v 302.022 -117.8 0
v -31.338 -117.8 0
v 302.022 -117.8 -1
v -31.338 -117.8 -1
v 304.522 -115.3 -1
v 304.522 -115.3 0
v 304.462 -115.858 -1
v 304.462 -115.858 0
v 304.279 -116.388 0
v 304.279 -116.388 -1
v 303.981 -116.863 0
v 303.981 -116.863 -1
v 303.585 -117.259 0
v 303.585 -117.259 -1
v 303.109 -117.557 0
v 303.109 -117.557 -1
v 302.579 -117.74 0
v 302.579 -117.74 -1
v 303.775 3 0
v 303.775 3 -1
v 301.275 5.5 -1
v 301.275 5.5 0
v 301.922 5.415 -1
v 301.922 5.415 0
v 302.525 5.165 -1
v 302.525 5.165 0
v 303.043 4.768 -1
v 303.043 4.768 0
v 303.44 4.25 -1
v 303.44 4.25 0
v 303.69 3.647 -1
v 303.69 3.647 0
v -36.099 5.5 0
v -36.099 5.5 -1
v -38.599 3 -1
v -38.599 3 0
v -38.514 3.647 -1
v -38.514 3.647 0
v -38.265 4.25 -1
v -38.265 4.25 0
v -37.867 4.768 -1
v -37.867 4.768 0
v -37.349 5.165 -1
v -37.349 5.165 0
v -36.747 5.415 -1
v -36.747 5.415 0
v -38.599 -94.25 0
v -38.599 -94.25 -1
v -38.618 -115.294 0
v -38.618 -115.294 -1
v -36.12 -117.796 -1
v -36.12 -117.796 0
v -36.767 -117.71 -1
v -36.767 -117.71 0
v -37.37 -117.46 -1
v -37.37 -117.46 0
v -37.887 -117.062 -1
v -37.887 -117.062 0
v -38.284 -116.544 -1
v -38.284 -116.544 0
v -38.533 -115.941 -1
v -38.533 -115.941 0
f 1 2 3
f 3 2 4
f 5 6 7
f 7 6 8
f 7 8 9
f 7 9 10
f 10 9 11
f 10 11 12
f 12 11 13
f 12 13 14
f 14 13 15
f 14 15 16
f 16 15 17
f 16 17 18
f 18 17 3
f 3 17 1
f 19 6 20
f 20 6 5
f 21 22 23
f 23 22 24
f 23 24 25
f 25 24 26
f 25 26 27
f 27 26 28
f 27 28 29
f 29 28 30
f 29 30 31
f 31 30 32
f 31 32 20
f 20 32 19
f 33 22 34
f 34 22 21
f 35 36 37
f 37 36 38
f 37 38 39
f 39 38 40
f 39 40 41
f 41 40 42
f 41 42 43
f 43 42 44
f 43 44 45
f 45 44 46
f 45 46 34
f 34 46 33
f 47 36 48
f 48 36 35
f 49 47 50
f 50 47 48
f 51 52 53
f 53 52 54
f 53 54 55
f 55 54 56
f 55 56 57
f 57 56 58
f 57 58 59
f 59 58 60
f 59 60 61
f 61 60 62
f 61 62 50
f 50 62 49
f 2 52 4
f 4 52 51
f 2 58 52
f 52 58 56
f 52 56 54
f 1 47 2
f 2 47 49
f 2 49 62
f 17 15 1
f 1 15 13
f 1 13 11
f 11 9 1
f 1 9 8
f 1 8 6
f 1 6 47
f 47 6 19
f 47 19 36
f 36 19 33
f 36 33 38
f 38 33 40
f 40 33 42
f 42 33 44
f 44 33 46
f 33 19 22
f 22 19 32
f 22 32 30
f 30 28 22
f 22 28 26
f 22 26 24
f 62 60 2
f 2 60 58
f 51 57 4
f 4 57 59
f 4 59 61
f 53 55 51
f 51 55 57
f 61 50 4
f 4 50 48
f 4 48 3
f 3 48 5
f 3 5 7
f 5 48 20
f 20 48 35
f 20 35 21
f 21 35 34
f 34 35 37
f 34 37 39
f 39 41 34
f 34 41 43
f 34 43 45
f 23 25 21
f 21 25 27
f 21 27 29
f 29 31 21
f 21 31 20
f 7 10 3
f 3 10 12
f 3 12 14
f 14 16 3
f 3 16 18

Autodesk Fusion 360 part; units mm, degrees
sketch "Reference" plane through (0, 0, 0) normal (0, 0, 1) x (1, 0, 0)
  line L0 (298.2751, -95.25) -> (298.2751, -113.3)
  line L1 (298.275, 1) -> (298.275, -57.15)
  line L2 (298.275, -57.15) -> (298.275, -57.15)
  line L3 (304.5217, -115.3) -> (303.775, 3)
  line L4 (179.47, 0) -> (290.235, 0)
  line L5 (290.2351, -112.3) -> (230.642, -112.3)
  line L6 (290.235, 1) -> (298.275, 1)
  line L7 (290.235, 0) -> (298.275, 0)
  line L8 (290.2351, -112.3) -> (298.2751, -112.3)
  arc A0 (302.0217, -117.8) -> (304.5217, -115.3) centre (302.0374, -115.3157) ccw
  line L9 (298.2751, -57.15) -> (298.2751, -74.2)
  line L10 (171.43, 0) -> (171.43, 1)
  line L11 (230.642, -112.3) -> (230.642, -113.3)
  line L12 (222.602, -113.3) -> (222.602, -112.3)
  arc A1 (303.775, 3) -> (301.275, 5.5) centre (301.275, 3) ccw
  line L13 (-28.337, -112.3) -> (-29.3375, -112.3)
  line L14 (-28.3375, 1.5) -> (-28.3375, 3)
  line L15 (-28.337, 1.5) -> (-6.3413, 1.5)
  line L16 (230.642, -112.3) -> (230.642, -113.3)
  line L17 (230.642, -113.3) -> (222.602, -113.3)
  line L18 (-36.12, -117.7958) -> (-31.338, -117.8)
  line L19 (222.602, -113.3) -> (222.602, -112.3)
  line L20 (-28.337, -113.3) -> (-28.337, -112.3)
  line L21 (-29.3375, -113.3) -> (-29.338, -113.3)
  arc A2 (-38.6178, -115.2937) -> (-36.12, -117.7958) centre (-36.1178, -115.2958) ccw
  line L22 (57.336, -112.3) -> (-20.297, -112.3)
  line L23 (8.02, 1) -> (8.02, 0)
  line L24 (-29.3375, -112.3) -> (-29.3375, -113.3)
  line L25 (-33.0995, -112.3) -> (-33.0995, 1.5)
  line L26 (-29.338, -112.3) -> (-33.0995, -112.3)
  line L27 (57.336, -113.3) -> (57.336, -112.3)
  line L28 (-20.297, -113.3) -> (-28.337, -113.3)
  line L29 (-29.338, -113.3) -> (-29.338, -112.3)
  line L30 (-20.297, -112.3) -> (-20.297, -113.3)
  line L31 (301.275, 5.5) -> (-36.0995, 5.5)
  line L32 (-38.5995, -94.25) -> (-38.6178, -115.2937)
  line L33 (298.2751, -76.2) -> (298.2751, -93.25)
  line L34 (298.275, -95.25) -> (298.275, -95.25)
  line L35 (298.275, -76.2) -> (298.275, -76.2)
  line L36 (-6.3413, 1.5) -> (-6.3413, 0)
  line L37 (-38.5995, 3) -> (-38.5995, -94.25)
  arc A3 (303.775, 3) -> (301.275, 5.5) centre (301.275, 3) ccw
  line L38 (298.2751, -74.2) -> (298.275, -74.2)
  line L39 (-28.337, 3) -> (-28.337, 1.5)
  line L40 (-33.0995, 1.5) -> (-28.3375, 1.5)
  line L41 (-0.02, 0) -> (-0.02, 1)
  arc A4 (-36.0995, 5.5) -> (-38.5995, 3) centre (-36.0995, 3) ccw
  line L42 (-31.338, -117.8) -> (302.0217, -117.8)
  line L43 (-6.3413, 0) -> (-0.02, 0)
  line L44 (298.275, -57.15) -> (298.275, -57.15)
  line L45 (-0.02, 1) -> (8.02, 1)
  line L46 (8.02, 0) -> (171.43, 0)
  line L47 (-28.3375, 3) -> (-28.337, 3)
  line L48 (290.235, 0) -> (290.235, 1)
  line L49 (290.235, 1) -> (298.275, 1)
  line L50 (298.2751, -57.15) -> (298.2751, -74.2)
  line L51 (298.275, 1) -> (298.275, -57.15)
  line L52 (222.602, -112.3) -> (65.376, -112.3)
  line L53 (-33.0995, -112.3) -> (-33.0995, 1.5)
  line L54 (301.275, 5.5) -> (-36.0995, 5.5)
  line L55 (-31.338, -117.8) -> (302.0217, -117.8)
  line L56 (57.336, -112.3) -> (-20.297, -112.3)
  line L57 (8.02, 0) -> (171.43, 0)
  line L58 (290.2351, -112.3) -> (230.642, -112.3)
  line L59 (298.2751, -95.25) -> (298.2751, -113.3)
  line L60 (298.275, -76.2) -> (298.275, -76.2)
  line L61 (298.275, -74.2) -> (298.275, -76.2)
  line L62 (298.2751, -76.2) -> (298.2751, -93.25)
  line L63 (298.2751, -93.25) -> (298.275, -93.25)
  line L64 (298.275, -93.25) -> (298.275, -95.25)
  line L65 (290.2351, -113.3) -> (290.2351, -112.3)
  arc A5 (302.0217, -117.8) -> (304.5217, -115.3) centre (302.0374, -115.3157) ccw
  line L66 (179.47, 0) -> (290.235, 0)
  line L67 (298.2751, -113.3) -> (290.2351, -113.3)
  line L68 (304.5217, -115.3) -> (303.775, 3)
  line L69 (298.275, -95.25) -> (298.275, -95.25)
  line L70 (57.336, -113.3) -> (57.336, -112.3)
  line L71 (65.376, -113.3) -> (57.336, -113.3)
  line L72 (-29.338, -113.3) -> (-29.338, -112.3)
  line L73 (-6.3413, 1.5) -> (-6.3413, 0)
  line L74 (-29.3375, -113.3) -> (-29.338, -113.3)
  line L75 (-29.3375, -112.3) -> (-29.3375, -113.3)
  line L76 (-28.3375, 1.5) -> (-28.3375, 3)
  line L77 (-28.337, 1.5) -> (-6.3413, 1.5)
  line L78 (-28.337, -112.3) -> (-29.3375, -112.3)
  line L79 (-28.337, -113.3) -> (-28.337, -112.3)
  line L80 (-28.3375, 3) -> (-28.337, 3)
  line L81 (-20.297, -113.3) -> (-28.337, -113.3)
  line L82 (65.376, -112.3) -> (65.376, -113.3)
  line L83 (-20.297, -112.3) -> (-20.297, -113.3)
  line L84 (-29.338, -112.3) -> (-33.0995, -112.3)
  line L85 (8.02, 1) -> (8.02, 0)
  line L86 (-28.337, 3) -> (-28.337, 1.5)
  arc A6 (-38.6178, -115.2937) -> (-36.12, -117.7958) centre (-36.1178, -115.2958) ccw
  line L87 (-38.5995, -94.25) -> (-38.6178, -115.2937)
  line L88 (-38.5995, 3) -> (-38.5995, -94.25)
  line L89 (-0.02, 0) -> (-0.02, 1)
  line L90 (-33.0995, 1.5) -> (-28.3375, 1.5)
  line L91 (-6.3413, 0) -> (-0.02, 0)
  arc A7 (-36.0995, 5.5) -> (-38.5995, 3) centre (-36.0995, 3) ccw
  line L92 (-0.02, 1) -> (8.02, 1)
  line L93 (-36.12, -117.7958) -> (-31.338, -117.8)
  line L94 (298.275, -93.25) -> (298.275, -95.25)
  line L95 (298.2751, -113.3) -> (290.2351, -113.3)
  line L96 (290.2351, -113.3) -> (290.2351, -112.3)
  line L97 (298.2751, -93.25) -> (298.275, -93.25)
  line L98 (298.275, -74.2) -> (298.275, -76.2)
  line L99 (298.2751, -74.2) -> (298.275, -74.2)
  line L100 (290.235, 0) -> (290.235, 1)
  line L101 (179.47, 1) -> (179.47, 0)
  line L102 (230.642, -113.3) -> (222.602, -113.3)
  line L103 (179.47, 1) -> (179.47, 0)
  line L104 (171.43, 1) -> (179.47, 1)
  line L105 (222.602, -112.3) -> (65.376, -112.3)
  line L106 (65.376, -112.3) -> (65.376, -113.3)
  line L107 (65.376, -113.3) -> (57.336, -113.3)
  line L108 (171.43, 0) -> (171.43, 1)
  line L109 (171.43, 1) -> (179.47, 1)
  dimension "d29" = 5.5
  dimension "d30" = 5.5
  dimension "d31" = 6.2339
  dimension "d32" = 5.5125
  dimension "d33" = 5.5
  dimension "d34" = 6.2276
  dimension "d35" = 5.5188
sketch "FlatPlateSketch" plane through (0, 0, 0) normal (0, 0, 1) x (1, 0, 0)
  line L0 (298.2751, -95.25) -> (298.2751, -113.3)
  line L1 (298.275, 1) -> (298.275, -57.15)
  line L2 (298.275, -57.15) -> (298.275, -57.15)
  line L3 (304.5217, -115.3) -> (303.775, 3)
  line L4 (179.47, 0) -> (290.235, 0)
  line L5 (290.2351, -112.3) -> (230.642, -112.3)
  line L6 (290.235, 1) -> (298.275, 1)
  line L7 (290.235, 0) -> (298.275, 0)
  line L8 (290.2351, -112.3) -> (298.2751, -112.3)
  arc A0 (302.0217, -117.8) -> (304.5217, -115.3) centre (302.0374, -115.3157) ccw
  line L9 (298.2751, -57.15) -> (298.2751, -74.2)
  line L10 (171.43, 0) -> (171.43, 1)
  line L11 (230.642, -112.3) -> (230.642, -113.3)
  line L12 (222.602, -113.3) -> (222.602, -112.3)
  arc A1 (303.775, 3) -> (301.275, 5.5) centre (301.275, 3) ccw
  line L13 (-28.337, -112.3) -> (-29.3375, -112.3)
  line L14 (-28.3375, 1.5) -> (-28.3375, 3)
  line L15 (-28.337, 1.5) -> (-6.3413, 1.5)
  line L16 (230.642, -112.3) -> (230.642, -113.3)
  line L17 (230.642, -113.3) -> (222.602, -113.3)
  line L18 (-36.12, -117.7958) -> (-31.338, -117.8)
  line L19 (222.602, -113.3) -> (222.602, -112.3)
  line L20 (-28.337, -113.3) -> (-28.337, -112.3)
  line L21 (-29.3375, -113.3) -> (-29.338, -113.3)
  arc A2 (-38.6178, -115.2937) -> (-36.12, -117.7958) centre (-36.1178, -115.2958) ccw
  line L22 (57.336, -112.3) -> (-20.297, -112.3)
  line L23 (8.02, 1) -> (8.02, 0)
  line L24 (-29.3375, -112.3) -> (-29.3375, -113.3)
  line L25 (-33.0995, -112.3) -> (-33.0995, 1.5)
  line L26 (-29.338, -112.3) -> (-33.0995, -112.3)
  line L27 (57.336, -113.3) -> (57.336, -112.3)
  line L28 (-20.297, -113.3) -> (-28.337, -113.3)
  line L29 (-29.338, -113.3) -> (-29.338, -112.3)
  line L30 (-20.297, -112.3) -> (-20.297, -113.3)
  line L31 (301.275, 5.5) -> (-36.0995, 5.5)
  line L32 (-38.5995, -94.25) -> (-38.6178, -115.2937)
  line L33 (298.2751, -76.2) -> (298.2751, -93.25)
  line L34 (298.275, -95.25) -> (298.275, -95.25)
  line L35 (298.275, -76.2) -> (298.275, -76.2)
  line L36 (-6.3413, 1.5) -> (-6.3413, 0)
  line L37 (-38.5995, 3) -> (-38.5995, -94.25)
  arc A3 (303.775, 3) -> (301.275, 5.5) centre (301.275, 3) ccw
  line L38 (298.2751, -74.2) -> (298.275, -74.2)
  line L39 (-28.337, 3) -> (-28.337, 1.5)
  line L40 (-33.0995, 1.5) -> (-28.3375, 1.5)
  line L41 (-0.02, 0) -> (-0.02, 1)
  arc A4 (-36.0995, 5.5) -> (-38.5995, 3) centre (-36.0995, 3) ccw
  line L42 (-31.338, -117.8) -> (302.0217, -117.8)
  line L43 (-6.3413, 0) -> (-0.02, 0)
  line L44 (298.275, -57.15) -> (298.275, -57.15)
  line L45 (-0.02, 1) -> (8.02, 1)
  line L46 (8.02, 0) -> (171.43, 0)
  line L47 (-28.3375, 3) -> (-28.337, 3)
  line L48 (290.235, 0) -> (290.235, 1)
  line L49 (290.235, 1) -> (298.275, 1)
  line L50 (298.2751, -57.15) -> (298.2751, -74.2)
  line L51 (298.275, 1) -> (298.275, -57.15)
  line L52 (222.602, -112.3) -> (65.376, -112.3)
  line L53 (-33.0995, -112.3) -> (-33.0995, 1.5)
  line L54 (301.275, 5.5) -> (-36.0995, 5.5)
  line L55 (-31.338, -117.8) -> (302.0217, -117.8)
  line L56 (57.336, -112.3) -> (-20.297, -112.3)
  line L57 (8.02, 0) -> (171.43, 0)
  line L58 (290.2351, -112.3) -> (230.642, -112.3)
  line L59 (298.2751, -95.25) -> (298.2751, -113.3)
  line L60 (298.275, -76.2) -> (298.275, -76.2)
  line L61 (298.275, -74.2) -> (298.275, -76.2)
  line L62 (298.2751, -76.2) -> (298.2751, -93.25)
  line L63 (298.2751, -93.25) -> (298.275, -93.25)
  line L64 (298.275, -93.25) -> (298.275, -95.25)
  line L65 (290.2351, -113.3) -> (290.2351, -112.3)
  arc A5 (302.0217, -117.8) -> (304.5217, -115.3) centre (302.0374, -115.3157) ccw
  line L66 (179.47, 0) -> (290.235, 0)
  line L67 (298.2751, -113.3) -> (290.2351, -113.3)
  line L68 (304.5217, -115.3) -> (303.775, 3)
  line L69 (298.275, -95.25) -> (298.275, -95.25)
  line L70 (57.336, -113.3) -> (57.336, -112.3)
  line L71 (65.376, -113.3) -> (57.336, -113.3)
  line L72 (-29.338, -113.3) -> (-29.338, -112.3)
  line L73 (-6.3413, 1.5) -> (-6.3413, 0)
  line L74 (-29.3375, -113.3) -> (-29.338, -113.3)
  line L75 (-29.3375, -112.3) -> (-29.3375, -113.3)
  line L76 (-28.3375, 1.5) -> (-28.3375, 3)
  line L77 (-28.337, 1.5) -> (-6.3413, 1.5)
  line L78 (-28.337, -112.3) -> (-29.3375, -112.3)
  line L79 (-28.337, -113.3) -> (-28.337, -112.3)
  line L80 (-28.3375, 3) -> (-28.337, 3)
  line L81 (-20.297, -113.3) -> (-28.337, -113.3)
  line L82 (65.376, -112.3) -> (65.376, -113.3)
  line L83 (-20.297, -112.3) -> (-20.297, -113.3)
  line L84 (-29.338, -112.3) -> (-33.0995, -112.3)
  line L85 (8.02, 1) -> (8.02, 0)
  line L86 (-28.337, 3) -> (-28.337, 1.5)
  arc A6 (-38.6178, -115.2937) -> (-36.12, -117.7958) centre (-36.1178, -115.2958) ccw
  line L87 (-38.5995, -94.25) -> (-38.6178, -115.2937)
  line L88 (-38.5995, 3) -> (-38.5995, -94.25)
  line L89 (-0.02, 0) -> (-0.02, 1)
  line L90 (-33.0995, 1.5) -> (-28.3375, 1.5)
  line L91 (-6.3413, 0) -> (-0.02, 0)
  arc A7 (-36.0995, 5.5) -> (-38.5995, 3) centre (-36.0995, 3) ccw
  line L92 (-0.02, 1) -> (8.02, 1)
  line L93 (-36.12, -117.7958) -> (-31.338, -117.8)
  line L94 (298.275, -93.25) -> (298.275, -95.25)
  line L95 (298.2751, -113.3) -> (290.2351, -113.3)
  line L96 (290.2351, -113.3) -> (290.2351, -112.3)
  line L97 (298.2751, -93.25) -> (298.275, -93.25)
  line L98 (298.275, -74.2) -> (298.275, -76.2)
  line L99 (298.2751, -74.2) -> (298.275, -74.2)
  line L100 (290.235, 0) -> (290.235, 1)
  line L101 (179.47, 1) -> (179.47, 0)
  line L102 (230.642, -113.3) -> (222.602, -113.3)
  line L103 (179.47, 1) -> (179.47, 0)
  line L104 (171.43, 1) -> (179.47, 1)
  line L105 (222.602, -112.3) -> (65.376, -112.3)
  line L106 (65.376, -112.3) -> (65.376, -113.3)
  line L107 (65.376, -113.3) -> (57.336, -113.3)
  line L108 (171.43, 0) -> (171.43, 1)
  line L109 (171.43, 1) -> (179.47, 1)
  dimension "d36" = 5.5
  dimension "d37" = 5.5
  dimension "d38" = 6.2339
  dimension "d39" = 5.5125
  dimension "d40" = 5.5
  dimension "d41" = 6.2276
  dimension "d42" = 5.5188
sketch "Sketch7" plane through (0, 0, 0) normal (0, 0, 1) x (1, 0, 0)
  line L0 (298.2751, -95.25) -> (298.2751, -113.3)
  line L1 (298.275, 1) -> (298.275, -57.15)
  line L2 (298.275, -57.15) -> (298.275, -57.15)
  line L3 (304.5217, -115.3) -> (303.775, 3)
  line L4 (179.47, 0) -> (290.235, 0)
  line L5 (290.2351, -112.3) -> (230.642, -112.3)
  line L6 (290.235, 1) -> (298.275, 1)
  line L7 (290.235, 0) -> (298.275, 0)
  line L8 (290.2351, -112.3) -> (298.2751, -112.3)
  arc A0 (302.0217, -117.8) -> (304.5217, -115.3) centre (302.0374, -115.3157) ccw
  line L9 (298.2751, -57.15) -> (298.2751, -74.2)
  line L10 (171.43, 0) -> (171.43, 1)
  line L11 (230.642, -112.3) -> (230.642, -113.3)
  line L12 (222.602, -113.3) -> (222.602, -112.3)
  arc A1 (303.775, 3) -> (301.275, 5.5) centre (301.275, 3) ccw
  line L13 (-28.337, -112.3) -> (-29.3375, -112.3)
  line L14 (-28.3375, 1.5) -> (-28.3375, 3)
  line L15 (-28.337, 1.5) -> (-6.3413, 1.5)
  line L16 (230.642, -112.3) -> (230.642, -113.3)
  line L17 (230.642, -113.3) -> (222.602, -113.3)
  line L18 (-36.12, -117.7958) -> (-31.338, -117.8)
  line L19 (222.602, -113.3) -> (222.602, -112.3)
  line L20 (-28.337, -113.3) -> (-28.337, -112.3)
  line L21 (-29.3375, -113.3) -> (-29.338, -113.3)
  arc A2 (-38.6178, -115.2937) -> (-36.12, -117.7958) centre (-36.1178, -115.2958) ccw
  line L22 (57.336, -112.3) -> (-20.297, -112.3)
  line L23 (8.02, 1) -> (8.02, 0)
  line L24 (-29.3375, -112.3) -> (-29.3375, -113.3)
  line L25 (-33.0995, -112.3) -> (-33.0995, 1.5)
  line L26 (-29.338, -112.3) -> (-33.0995, -112.3)
  line L27 (57.336, -113.3) -> (57.336, -112.3)
  line L28 (-20.297, -113.3) -> (-28.337, -113.3)
  line L29 (-29.338, -113.3) -> (-29.338, -112.3)
  line L30 (-20.297, -112.3) -> (-20.297, -113.3)
  line L31 (301.275, 5.5) -> (-36.0995, 5.5)
  line L32 (-38.5995, -94.25) -> (-38.6178, -115.2937)
  line L33 (298.2751, -76.2) -> (298.2751, -93.25)
  line L34 (298.275, -95.25) -> (298.275, -95.25)
  line L35 (298.275, -76.2) -> (298.275, -76.2)
  line L36 (-6.3413, 1.5) -> (-6.3413, 0)
  line L37 (-38.5995, 3) -> (-38.5995, -94.25)
  arc A3 (303.775, 3) -> (301.275, 5.5) centre (301.275, 3) ccw
  line L38 (298.2751, -74.2) -> (298.275, -74.2)
  line L39 (-28.337, 3) -> (-28.337, 1.5)
  line L40 (-33.0995, 1.5) -> (-28.3375, 1.5)
  line L41 (-0.02, 0) -> (-0.02, 1)
  arc A4 (-36.0995, 5.5) -> (-38.5995, 3) centre (-36.0995, 3) ccw
  line L42 (-31.338, -117.8) -> (302.0217, -117.8)
  line L43 (-6.3413, 0) -> (-0.02, 0)
  line L44 (298.275, -57.15) -> (298.275, -57.15)
  line L45 (-0.02, 1) -> (8.02, 1)
  line L46 (8.02, 0) -> (171.43, 0)
  line L47 (-28.3375, 3) -> (-28.337, 3)
  line L48 (290.235, 0) -> (290.235, 1)
  line L49 (290.235, 1) -> (298.275, 1)
  line L50 (298.2751, -57.15) -> (298.2751, -74.2)
  line L51 (298.275, 1) -> (298.275, -57.15)
  line L52 (222.602, -112.3) -> (65.376, -112.3)
  line L53 (-33.0995, -112.3) -> (-33.0995, 1.5)
  line L54 (301.275, 5.5) -> (-36.0995, 5.5)
  line L55 (-31.338, -117.8) -> (302.0217, -117.8)
  line L56 (57.336, -112.3) -> (-20.297, -112.3)
  line L57 (8.02, 0) -> (171.43, 0)
  line L58 (290.2351, -112.3) -> (230.642, -112.3)
  line L59 (298.2751, -95.25) -> (298.2751, -113.3)
  line L60 (298.275, -76.2) -> (298.275, -76.2)
  line L61 (298.275, -74.2) -> (298.275, -76.2)
  line L62 (298.2751, -76.2) -> (298.2751, -93.25)
  line L63 (298.2751, -93.25) -> (298.275, -93.25)
  line L64 (298.275, -93.25) -> (298.275, -95.25)
  line L65 (290.2351, -113.3) -> (290.2351, -112.3)
  arc A5 (302.0217, -117.8) -> (304.5217, -115.3) centre (302.0374, -115.3157) ccw
  line L66 (179.47, 0) -> (290.235, 0)
  line L67 (298.2751, -113.3) -> (290.2351, -113.3)
  line L68 (304.5217, -115.3) -> (303.775, 3)
  line L69 (298.275, -95.25) -> (298.275, -95.25)
  line L70 (57.336, -113.3) -> (57.336, -112.3)
  line L71 (65.376, -113.3) -> (57.336, -113.3)
  line L72 (-29.338, -113.3) -> (-29.338, -112.3)
  line L73 (-6.3413, 1.5) -> (-6.3413, 0)
  line L74 (-29.3375, -113.3) -> (-29.338, -113.3)
  line L75 (-29.3375, -112.3) -> (-29.3375, -113.3)
  line L76 (-28.3375, 1.5) -> (-28.3375, 3)
  line L77 (-28.337, 1.5) -> (-6.3413, 1.5)
  line L78 (-28.337, -112.3) -> (-29.3375, -112.3)
  line L79 (-28.337, -113.3) -> (-28.337, -112.3)
  line L80 (-28.3375, 3) -> (-28.337, 3)
  line L81 (-20.297, -113.3) -> (-28.337, -113.3)
  line L82 (65.376, -112.3) -> (65.376, -113.3)
  line L83 (-20.297, -112.3) -> (-20.297, -113.3)
  line L84 (-29.338, -112.3) -> (-33.0995, -112.3)
  line L85 (8.02, 1) -> (8.02, 0)
  line L86 (-28.337, 3) -> (-28.337, 1.5)
  arc A6 (-38.6178, -115.2937) -> (-36.12, -117.7958) centre (-36.1178, -115.2958) ccw
  line L87 (-38.5995, -94.25) -> (-38.6178, -115.2937)
  line L88 (-38.5995, 3) -> (-38.5995, -94.25)
  line L89 (-0.02, 0) -> (-0.02, 1)
  line L90 (-33.0995, 1.5) -> (-28.3375, 1.5)
  line L91 (-6.3413, 0) -> (-0.02, 0)
  arc A7 (-36.0995, 5.5) -> (-38.5995, 3) centre (-36.0995, 3) ccw
  line L92 (-0.02, 1) -> (8.02, 1)
  line L93 (-36.12, -117.7958) -> (-31.338, -117.8)
  line L94 (298.275, -93.25) -> (298.275, -95.25)
  line L95 (298.2751, -113.3) -> (290.2351, -113.3)
  line L96 (290.2351, -113.3) -> (290.2351, -112.3)
  line L97 (298.2751, -93.25) -> (298.275, -93.25)
  line L98 (298.275, -74.2) -> (298.275, -76.2)
  line L99 (298.2751, -74.2) -> (298.275, -74.2)
  line L100 (290.235, 0) -> (290.235, 1)
  line L101 (179.47, 1) -> (179.47, 0)
  line L102 (230.642, -113.3) -> (222.602, -113.3)
  line L103 (179.47, 1) -> (179.47, 0)
  line L104 (171.43, 1) -> (179.47, 1)
  line L105 (222.602, -112.3) -> (65.376, -112.3)
  line L106 (65.376, -112.3) -> (65.376, -113.3)
  line L107 (65.376, -113.3) -> (57.336, -113.3)
  line L108 (171.43, 0) -> (171.43, 1)
  line L109 (171.43, 1) -> (179.47, 1)
  dimension "d45" = 5.5
  dimension "d46" = 5.5
  dimension "d47" = 6.2339
  dimension "d48" = 5.5125
  dimension "d49" = 5.5
  dimension "d50" = 6.2276
  dimension "d51" = 5.5188
extrude "Extrude4" add sketch "FlatPlateSketch" against normal blind 1 contours L0 L1 L4 L5 L7 L8 L9 L10 L11 L12 L13 L15 L16 L17 L19 L20 L22 L23 L25 L26 L27 L28 L30 L33 L36 L40 L41 L43 L45 L46 L50 L51 L52 L53 L56 L57 L58 L59 L61 L62 L64 L66 L70 L71 L73 L77 L78 L79 L81 L82 L83 L84 L85 L89 L90 L91 L92 L94 L98 L101 L102 L103 L104 L105 L106 L107 L108 L109 | L0 L8 L59 L65 L67 L95 L96 | L1 L6 L7 L48 L49 L51 L100 | L3 A0 A1 L18 A2 L31 L32 L37 A3 A4 L42 L54 L55 A5 L68 A6 L87 L88 A7 L93
sketch "Sketch8" plane through (0, 0, 0) normal (0, 0, 1) x (1, 0, 0)
  line L0 (298.2751, -95.25) -> (298.2751, -113.3)
  line L1 (298.275, 1) -> (298.275, -57.15)
  line L2 (298.275, -57.15) -> (298.275, -57.15)
  line L3 (304.5217, -115.3) -> (303.775, 3)
  line L4 (179.47, 0) -> (290.235, 0)
  line L5 (290.2351, -112.3) -> (230.642, -112.3)
  line L6 (290.235, 1) -> (298.275, 1)
  line L7 (290.235, 0) -> (298.275, 0)
  line L8 (290.2351, -112.3) -> (298.2751, -112.3)
  arc A0 (302.0217, -117.8) -> (304.5217, -115.3) centre (302.0374, -115.3157) ccw
  line L9 (298.2751, -57.15) -> (298.2751, -74.2)
  line L10 (171.43, 0) -> (171.43, 1)
  line L11 (230.642, -112.3) -> (230.642, -113.3)
  line L12 (222.602, -113.3) -> (222.602, -112.3)
  arc A1 (303.775, 3) -> (301.275, 5.5) centre (301.275, 3) ccw
  line L13 (-28.337, -112.3) -> (-29.3375, -112.3)
  line L14 (-28.3375, 1.5) -> (-28.3375, 3)
  line L15 (-28.337, 1.5) -> (-6.3413, 1.5)
  line L16 (230.642, -112.3) -> (230.642, -113.3)
  line L17 (230.642, -113.3) -> (222.602, -113.3)
  line L18 (-36.12, -117.7958) -> (-31.338, -117.8)
  line L19 (222.602, -113.3) -> (222.602, -112.3)
  line L20 (-28.337, -113.3) -> (-28.337, -112.3)
  line L21 (-29.3375, -113.3) -> (-29.338, -113.3)
  arc A2 (-38.6178, -115.2937) -> (-36.12, -117.7958) centre (-36.1178, -115.2958) ccw
  line L22 (57.336, -112.3) -> (-20.297, -112.3)
  line L23 (8.02, 1) -> (8.02, 0)
  line L24 (-29.3375, -112.3) -> (-29.3375, -113.3)
  line L25 (-33.0995, -112.3) -> (-33.0995, 1.5)
  line L26 (-29.338, -112.3) -> (-33.0995, -112.3)
  line L27 (57.336, -113.3) -> (57.336, -112.3)
  line L28 (-20.297, -113.3) -> (-28.337, -113.3)
  line L29 (-29.338, -113.3) -> (-29.338, -112.3)
  line L30 (-20.297, -112.3) -> (-20.297, -113.3)
  line L31 (301.275, 5.5) -> (-36.0995, 5.5)
  line L32 (-38.5995, -94.25) -> (-38.6178, -115.2937)
  line L33 (298.2751, -76.2) -> (298.2751, -93.25)
  line L34 (298.275, -95.25) -> (298.275, -95.25)
  line L35 (298.275, -76.2) -> (298.275, -76.2)
  line L36 (-6.3413, 1.5) -> (-6.3413, 0)
  line L37 (-38.5995, 3) -> (-38.5995, -94.25)
  arc A3 (303.775, 3) -> (301.275, 5.5) centre (301.275, 3) ccw
  line L38 (298.2751, -74.2) -> (298.275, -74.2)
  line L39 (-28.337, 3) -> (-28.337, 1.5)
  line L40 (-33.0995, 1.5) -> (-28.3375, 1.5)
  line L41 (-0.02, 0) -> (-0.02, 1)
  arc A4 (-36.0995, 5.5) -> (-38.5995, 3) centre (-36.0995, 3) ccw
  line L42 (-31.338, -117.8) -> (302.0217, -117.8)
  line L43 (-6.3413, 0) -> (-0.02, 0)
  line L44 (298.275, -57.15) -> (298.275, -57.15)
  line L45 (-0.02, 1) -> (8.02, 1)
  line L46 (8.02, 0) -> (171.43, 0)
  line L47 (-28.3375, 3) -> (-28.337, 3)
  line L48 (290.235, 0) -> (290.235, 1)
  line L49 (290.235, 1) -> (298.275, 1)
  line L50 (298.2751, -57.15) -> (298.2751, -74.2)
  line L51 (298.275, 1) -> (298.275, -57.15)
  line L52 (222.602, -112.3) -> (65.376, -112.3)
  line L53 (-33.0995, -112.3) -> (-33.0995, 1.5)
  line L54 (301.275, 5.5) -> (-36.0995, 5.5)
  line L55 (-31.338, -117.8) -> (302.0217, -117.8)
  line L56 (57.336, -112.3) -> (-20.297, -112.3)
  line L57 (8.02, 0) -> (171.43, 0)
  line L58 (290.2351, -112.3) -> (230.642, -112.3)
  line L59 (298.2751, -95.25) -> (298.2751, -113.3)
  line L60 (298.275, -76.2) -> (298.275, -76.2)
  line L61 (298.275, -74.2) -> (298.275, -76.2)
  line L62 (298.2751, -76.2) -> (298.2751, -93.25)
  line L63 (298.2751, -93.25) -> (298.275, -93.25)
  line L64 (298.275, -93.25) -> (298.275, -95.25)
  line L65 (290.2351, -113.3) -> (290.2351, -112.3)
  arc A5 (302.0217, -117.8) -> (304.5217, -115.3) centre (302.0374, -115.3157) ccw
  line L66 (179.47, 0) -> (290.235, 0)
  line L67 (298.2751, -113.3) -> (290.2351, -113.3)
  line L68 (304.5217, -115.3) -> (303.775, 3)
  line L69 (298.275, -95.25) -> (298.275, -95.25)
  line L70 (57.336, -113.3) -> (57.336, -112.3)
  line L71 (65.376, -113.3) -> (57.336, -113.3)
  line L72 (-29.338, -113.3) -> (-29.338, -112.3)
  line L73 (-6.3413, 1.5) -> (-6.3413, 0)
  line L74 (-29.3375, -113.3) -> (-29.338, -113.3)
  line L75 (-29.3375, -112.3) -> (-29.3375, -113.3)
  line L76 (-28.3375, 1.5) -> (-28.3375, 3)
  line L77 (-28.337, 1.5) -> (-6.3413, 1.5)
  line L78 (-28.337, -112.3) -> (-29.3375, -112.3)
  line L79 (-28.337, -113.3) -> (-28.337, -112.3)
  line L80 (-28.3375, 3) -> (-28.337, 3)
  line L81 (-20.297, -113.3) -> (-28.337, -113.3)
  line L82 (65.376, -112.3) -> (65.376, -113.3)
  line L83 (-20.297, -112.3) -> (-20.297, -113.3)
  line L84 (-29.338, -112.3) -> (-33.0995, -112.3)
  line L85 (8.02, 1) -> (8.02, 0)
  line L86 (-28.337, 3) -> (-28.337, 1.5)
  arc A6 (-38.6178, -115.2937) -> (-36.12, -117.7958) centre (-36.1178, -115.2958) ccw
  line L87 (-38.5995, -94.25) -> (-38.6178, -115.2937)
  line L88 (-38.5995, 3) -> (-38.5995, -94.25)
  line L89 (-0.02, 0) -> (-0.02, 1)
  line L90 (-33.0995, 1.5) -> (-28.3375, 1.5)
  line L91 (-6.3413, 0) -> (-0.02, 0)
  arc A7 (-36.0995, 5.5) -> (-38.5995, 3) centre (-36.0995, 3) ccw
  line L92 (-0.02, 1) -> (8.02, 1)
  line L93 (-36.12, -117.7958) -> (-31.338, -117.8)
  line L94 (298.275, -93.25) -> (298.275, -95.25)
  line L95 (298.2751, -113.3) -> (290.2351, -113.3)
  line L96 (290.2351, -113.3) -> (290.2351, -112.3)
  line L97 (298.2751, -93.25) -> (298.275, -93.25)
  line L98 (298.275, -74.2) -> (298.275, -76.2)
  line L99 (298.2751, -74.2) -> (298.275, -74.2)
  line L100 (290.235, 0) -> (290.235, 1)
  line L101 (179.47, 1) -> (179.47, 0)
  line L102 (230.642, -113.3) -> (222.602, -113.3)
  line L103 (179.47, 1) -> (179.47, 0)
  line L104 (171.43, 1) -> (179.47, 1)
  line L105 (222.602, -112.3) -> (65.376, -112.3)
  line L106 (65.376, -112.3) -> (65.376, -113.3)
  line L107 (65.376, -113.3) -> (57.336, -113.3)
  line L108 (171.43, 0) -> (171.43, 1)
  line L109 (171.43, 1) -> (179.47, 1)
  dimension "d54" = 5.5
  dimension "d55" = 5.5
  dimension "d56" = 6.2339
  dimension "d57" = 5.5125
  dimension "d58" = 5.5
  dimension "d59" = 6.2276
  dimension "d60" = 5.5188
sketch "Sketch9" plane through (0, 0, 0) normal (0, 0, 1) x (1, 0, 0)
  line L0 (298.2751, -95.25) -> (298.2751, -113.3)
  line L1 (298.275, 1) -> (298.275, -57.15)
  line L2 (298.275, -57.15) -> (298.275, -57.15)
  line L3 (304.5217, -115.3) -> (303.775, 3)
  line L4 (179.47, 0) -> (290.235, 0)
  line L5 (290.2351, -112.3) -> (230.642, -112.3)
  line L6 (290.235, 1) -> (298.275, 1)
  line L7 (290.235, 0) -> (298.275, 0)
  line L8 (290.2351, -112.3) -> (298.2751, -112.3)
  arc A0 (302.0217, -117.8) -> (304.5217, -115.3) centre (302.0374, -115.3157) ccw
  line L9 (298.2751, -57.15) -> (298.2751, -74.2)
  line L10 (171.43, 0) -> (171.43, 1)
  line L11 (230.642, -112.3) -> (230.642, -113.3)
  line L12 (222.602, -113.3) -> (222.602, -112.3)
  arc A1 (303.775, 3) -> (301.275, 5.5) centre (301.275, 3) ccw
  line L13 (-28.337, -112.3) -> (-29.3375, -112.3)
  line L14 (-28.3375, 1.5) -> (-28.3375, 3)
  line L15 (-28.337, 1.5) -> (-6.3413, 1.5)
  line L16 (230.642, -112.3) -> (230.642, -113.3)
  line L17 (230.642, -113.3) -> (222.602, -113.3)
  line L18 (-36.12, -117.7958) -> (-31.338, -117.8)
  line L19 (222.602, -113.3) -> (222.602, -112.3)
  line L20 (-28.337, -113.3) -> (-28.337, -112.3)
  line L21 (-29.3375, -113.3) -> (-29.338, -113.3)
  arc A2 (-38.6178, -115.2937) -> (-36.12, -117.7958) centre (-36.1178, -115.2958) ccw
  line L22 (57.336, -112.3) -> (-20.297, -112.3)
  line L23 (8.02, 1) -> (8.02, 0)
  line L24 (-29.3375, -112.3) -> (-29.3375, -113.3)
  line L25 (-33.0995, -112.3) -> (-33.0995, 1.5)
  line L26 (-29.338, -112.3) -> (-33.0995, -112.3)
  line L27 (57.336, -113.3) -> (57.336, -112.3)
  line L28 (-20.297, -113.3) -> (-28.337, -113.3)
  line L29 (-29.338, -113.3) -> (-29.338, -112.3)
  line L30 (-20.297, -112.3) -> (-20.297, -113.3)
  line L31 (301.275, 5.5) -> (-36.0995, 5.5)
  line L32 (-38.5995, -94.25) -> (-38.6178, -115.2937)
  line L33 (298.2751, -76.2) -> (298.2751, -93.25)
  line L34 (298.275, -95.25) -> (298.275, -95.25)
  line L35 (298.275, -76.2) -> (298.275, -76.2)
  line L36 (-6.3413, 1.5) -> (-6.3413, 0)
  line L37 (-38.5995, 3) -> (-38.5995, -94.25)
  arc A3 (303.775, 3) -> (301.275, 5.5) centre (301.275, 3) ccw
  line L38 (298.2751, -74.2) -> (298.275, -74.2)
  line L39 (-28.337, 3) -> (-28.337, 1.5)
  line L40 (-33.0995, 1.5) -> (-28.3375, 1.5)
  line L41 (-0.02, 0) -> (-0.02, 1)
  arc A4 (-36.0995, 5.5) -> (-38.5995, 3) centre (-36.0995, 3) ccw
  line L42 (-31.338, -117.8) -> (302.0217, -117.8)
  line L43 (-6.3413, 0) -> (-0.02, 0)
  line L44 (298.275, -57.15) -> (298.275, -57.15)
  line L45 (-0.02, 1) -> (8.02, 1)
  line L46 (8.02, 0) -> (171.43, 0)
  line L47 (-28.3375, 3) -> (-28.337, 3)
  line L48 (290.235, 0) -> (290.235, 1)
  line L49 (290.235, 1) -> (298.275, 1)
  line L50 (298.2751, -57.15) -> (298.2751, -74.2)
  line L51 (298.275, 1) -> (298.275, -57.15)
  line L52 (222.602, -112.3) -> (65.376, -112.3)
  line L53 (-33.0995, -112.3) -> (-33.0995, 1.5)
  line L54 (301.275, 5.5) -> (-36.0995, 5.5)
  line L55 (-31.338, -117.8) -> (302.0217, -117.8)
  line L56 (57.336, -112.3) -> (-20.297, -112.3)
  line L57 (8.02, 0) -> (171.43, 0)
  line L58 (290.2351, -112.3) -> (230.642, -112.3)
  line L59 (298.2751, -95.25) -> (298.2751, -113.3)
  line L60 (298.275, -76.2) -> (298.275, -76.2)
  line L61 (298.275, -74.2) -> (298.275, -76.2)
  line L62 (298.2751, -76.2) -> (298.2751, -93.25)
  line L63 (298.2751, -93.25) -> (298.275, -93.25)
  line L64 (298.275, -93.25) -> (298.275, -95.25)
  line L65 (290.2351, -113.3) -> (290.2351, -112.3)
  arc A5 (302.0217, -117.8) -> (304.5217, -115.3) centre (302.0374, -115.3157) ccw
  line L66 (179.47, 0) -> (290.235, 0)
  line L67 (298.2751, -113.3) -> (290.2351, -113.3)
  line L68 (304.5217, -115.3) -> (303.775, 3)
  line L69 (298.275, -95.25) -> (298.275, -95.25)
  line L70 (57.336, -113.3) -> (57.336, -112.3)
  line L71 (65.376, -113.3) -> (57.336, -113.3)
  line L72 (-29.338, -113.3) -> (-29.338, -112.3)
  line L73 (-6.3413, 1.5) -> (-6.3413, 0)
  line L74 (-29.3375, -113.3) -> (-29.338, -113.3)
  line L75 (-29.3375, -112.3) -> (-29.3375, -113.3)
  line L76 (-28.3375, 1.5) -> (-28.3375, 3)
  line L77 (-28.337, 1.5) -> (-6.3413, 1.5)
  line L78 (-28.337, -112.3) -> (-29.3375, -112.3)
  line L79 (-28.337, -113.3) -> (-28.337, -112.3)
  line L80 (-28.3375, 3) -> (-28.337, 3)
  line L81 (-20.297, -113.3) -> (-28.337, -113.3)
  line L82 (65.376, -112.3) -> (65.376, -113.3)
  line L83 (-20.297, -112.3) -> (-20.297, -113.3)
  line L84 (-29.338, -112.3) -> (-33.0995, -112.3)
  line L85 (8.02, 1) -> (8.02, 0)
  line L86 (-28.337, 3) -> (-28.337, 1.5)
  arc A6 (-38.6178, -115.2937) -> (-36.12, -117.7958) centre (-36.1178, -115.2958) ccw
  line L87 (-38.5995, -94.25) -> (-38.6178, -115.2937)
  line L88 (-38.5995, 3) -> (-38.5995, -94.25)
  line L89 (-0.02, 0) -> (-0.02, 1)
  line L90 (-33.0995, 1.5) -> (-28.3375, 1.5)
  line L91 (-6.3413, 0) -> (-0.02, 0)
  arc A7 (-36.0995, 5.5) -> (-38.5995, 3) centre (-36.0995, 3) ccw
  line L92 (-0.02, 1) -> (8.02, 1)
  line L93 (-36.12, -117.7958) -> (-31.338, -117.8)
  line L94 (298.275, -93.25) -> (298.275, -95.25)
  line L95 (298.2751, -113.3) -> (290.2351, -113.3)
  line L96 (290.2351, -113.3) -> (290.2351, -112.3)
  line L97 (298.2751, -93.25) -> (298.275, -93.25)
  line L98 (298.275, -74.2) -> (298.275, -76.2)
  line L99 (298.2751, -74.2) -> (298.275, -74.2)
  line L100 (290.235, 0) -> (290.235, 1)
  line L101 (179.47, 1) -> (179.47, 0)
  line L102 (230.642, -113.3) -> (222.602, -113.3)
  line L103 (179.47, 1) -> (179.47, 0)
  line L104 (171.43, 1) -> (179.47, 1)
  line L105 (222.602, -112.3) -> (65.376, -112.3)
  line L106 (65.376, -112.3) -> (65.376, -113.3)
  line L107 (65.376, -113.3) -> (57.336, -113.3)
  line L108 (171.43, 0) -> (171.43, 1)
  line L109 (171.43, 1) -> (179.47, 1)
  dimension "d61" = 5.5
  dimension "d62" = 5.5
  dimension "d63" = 6.2339
  dimension "d64" = 5.5125
  dimension "d65" = 5.5
  dimension "d66" = 6.2276
  dimension "d67" = 5.5188
